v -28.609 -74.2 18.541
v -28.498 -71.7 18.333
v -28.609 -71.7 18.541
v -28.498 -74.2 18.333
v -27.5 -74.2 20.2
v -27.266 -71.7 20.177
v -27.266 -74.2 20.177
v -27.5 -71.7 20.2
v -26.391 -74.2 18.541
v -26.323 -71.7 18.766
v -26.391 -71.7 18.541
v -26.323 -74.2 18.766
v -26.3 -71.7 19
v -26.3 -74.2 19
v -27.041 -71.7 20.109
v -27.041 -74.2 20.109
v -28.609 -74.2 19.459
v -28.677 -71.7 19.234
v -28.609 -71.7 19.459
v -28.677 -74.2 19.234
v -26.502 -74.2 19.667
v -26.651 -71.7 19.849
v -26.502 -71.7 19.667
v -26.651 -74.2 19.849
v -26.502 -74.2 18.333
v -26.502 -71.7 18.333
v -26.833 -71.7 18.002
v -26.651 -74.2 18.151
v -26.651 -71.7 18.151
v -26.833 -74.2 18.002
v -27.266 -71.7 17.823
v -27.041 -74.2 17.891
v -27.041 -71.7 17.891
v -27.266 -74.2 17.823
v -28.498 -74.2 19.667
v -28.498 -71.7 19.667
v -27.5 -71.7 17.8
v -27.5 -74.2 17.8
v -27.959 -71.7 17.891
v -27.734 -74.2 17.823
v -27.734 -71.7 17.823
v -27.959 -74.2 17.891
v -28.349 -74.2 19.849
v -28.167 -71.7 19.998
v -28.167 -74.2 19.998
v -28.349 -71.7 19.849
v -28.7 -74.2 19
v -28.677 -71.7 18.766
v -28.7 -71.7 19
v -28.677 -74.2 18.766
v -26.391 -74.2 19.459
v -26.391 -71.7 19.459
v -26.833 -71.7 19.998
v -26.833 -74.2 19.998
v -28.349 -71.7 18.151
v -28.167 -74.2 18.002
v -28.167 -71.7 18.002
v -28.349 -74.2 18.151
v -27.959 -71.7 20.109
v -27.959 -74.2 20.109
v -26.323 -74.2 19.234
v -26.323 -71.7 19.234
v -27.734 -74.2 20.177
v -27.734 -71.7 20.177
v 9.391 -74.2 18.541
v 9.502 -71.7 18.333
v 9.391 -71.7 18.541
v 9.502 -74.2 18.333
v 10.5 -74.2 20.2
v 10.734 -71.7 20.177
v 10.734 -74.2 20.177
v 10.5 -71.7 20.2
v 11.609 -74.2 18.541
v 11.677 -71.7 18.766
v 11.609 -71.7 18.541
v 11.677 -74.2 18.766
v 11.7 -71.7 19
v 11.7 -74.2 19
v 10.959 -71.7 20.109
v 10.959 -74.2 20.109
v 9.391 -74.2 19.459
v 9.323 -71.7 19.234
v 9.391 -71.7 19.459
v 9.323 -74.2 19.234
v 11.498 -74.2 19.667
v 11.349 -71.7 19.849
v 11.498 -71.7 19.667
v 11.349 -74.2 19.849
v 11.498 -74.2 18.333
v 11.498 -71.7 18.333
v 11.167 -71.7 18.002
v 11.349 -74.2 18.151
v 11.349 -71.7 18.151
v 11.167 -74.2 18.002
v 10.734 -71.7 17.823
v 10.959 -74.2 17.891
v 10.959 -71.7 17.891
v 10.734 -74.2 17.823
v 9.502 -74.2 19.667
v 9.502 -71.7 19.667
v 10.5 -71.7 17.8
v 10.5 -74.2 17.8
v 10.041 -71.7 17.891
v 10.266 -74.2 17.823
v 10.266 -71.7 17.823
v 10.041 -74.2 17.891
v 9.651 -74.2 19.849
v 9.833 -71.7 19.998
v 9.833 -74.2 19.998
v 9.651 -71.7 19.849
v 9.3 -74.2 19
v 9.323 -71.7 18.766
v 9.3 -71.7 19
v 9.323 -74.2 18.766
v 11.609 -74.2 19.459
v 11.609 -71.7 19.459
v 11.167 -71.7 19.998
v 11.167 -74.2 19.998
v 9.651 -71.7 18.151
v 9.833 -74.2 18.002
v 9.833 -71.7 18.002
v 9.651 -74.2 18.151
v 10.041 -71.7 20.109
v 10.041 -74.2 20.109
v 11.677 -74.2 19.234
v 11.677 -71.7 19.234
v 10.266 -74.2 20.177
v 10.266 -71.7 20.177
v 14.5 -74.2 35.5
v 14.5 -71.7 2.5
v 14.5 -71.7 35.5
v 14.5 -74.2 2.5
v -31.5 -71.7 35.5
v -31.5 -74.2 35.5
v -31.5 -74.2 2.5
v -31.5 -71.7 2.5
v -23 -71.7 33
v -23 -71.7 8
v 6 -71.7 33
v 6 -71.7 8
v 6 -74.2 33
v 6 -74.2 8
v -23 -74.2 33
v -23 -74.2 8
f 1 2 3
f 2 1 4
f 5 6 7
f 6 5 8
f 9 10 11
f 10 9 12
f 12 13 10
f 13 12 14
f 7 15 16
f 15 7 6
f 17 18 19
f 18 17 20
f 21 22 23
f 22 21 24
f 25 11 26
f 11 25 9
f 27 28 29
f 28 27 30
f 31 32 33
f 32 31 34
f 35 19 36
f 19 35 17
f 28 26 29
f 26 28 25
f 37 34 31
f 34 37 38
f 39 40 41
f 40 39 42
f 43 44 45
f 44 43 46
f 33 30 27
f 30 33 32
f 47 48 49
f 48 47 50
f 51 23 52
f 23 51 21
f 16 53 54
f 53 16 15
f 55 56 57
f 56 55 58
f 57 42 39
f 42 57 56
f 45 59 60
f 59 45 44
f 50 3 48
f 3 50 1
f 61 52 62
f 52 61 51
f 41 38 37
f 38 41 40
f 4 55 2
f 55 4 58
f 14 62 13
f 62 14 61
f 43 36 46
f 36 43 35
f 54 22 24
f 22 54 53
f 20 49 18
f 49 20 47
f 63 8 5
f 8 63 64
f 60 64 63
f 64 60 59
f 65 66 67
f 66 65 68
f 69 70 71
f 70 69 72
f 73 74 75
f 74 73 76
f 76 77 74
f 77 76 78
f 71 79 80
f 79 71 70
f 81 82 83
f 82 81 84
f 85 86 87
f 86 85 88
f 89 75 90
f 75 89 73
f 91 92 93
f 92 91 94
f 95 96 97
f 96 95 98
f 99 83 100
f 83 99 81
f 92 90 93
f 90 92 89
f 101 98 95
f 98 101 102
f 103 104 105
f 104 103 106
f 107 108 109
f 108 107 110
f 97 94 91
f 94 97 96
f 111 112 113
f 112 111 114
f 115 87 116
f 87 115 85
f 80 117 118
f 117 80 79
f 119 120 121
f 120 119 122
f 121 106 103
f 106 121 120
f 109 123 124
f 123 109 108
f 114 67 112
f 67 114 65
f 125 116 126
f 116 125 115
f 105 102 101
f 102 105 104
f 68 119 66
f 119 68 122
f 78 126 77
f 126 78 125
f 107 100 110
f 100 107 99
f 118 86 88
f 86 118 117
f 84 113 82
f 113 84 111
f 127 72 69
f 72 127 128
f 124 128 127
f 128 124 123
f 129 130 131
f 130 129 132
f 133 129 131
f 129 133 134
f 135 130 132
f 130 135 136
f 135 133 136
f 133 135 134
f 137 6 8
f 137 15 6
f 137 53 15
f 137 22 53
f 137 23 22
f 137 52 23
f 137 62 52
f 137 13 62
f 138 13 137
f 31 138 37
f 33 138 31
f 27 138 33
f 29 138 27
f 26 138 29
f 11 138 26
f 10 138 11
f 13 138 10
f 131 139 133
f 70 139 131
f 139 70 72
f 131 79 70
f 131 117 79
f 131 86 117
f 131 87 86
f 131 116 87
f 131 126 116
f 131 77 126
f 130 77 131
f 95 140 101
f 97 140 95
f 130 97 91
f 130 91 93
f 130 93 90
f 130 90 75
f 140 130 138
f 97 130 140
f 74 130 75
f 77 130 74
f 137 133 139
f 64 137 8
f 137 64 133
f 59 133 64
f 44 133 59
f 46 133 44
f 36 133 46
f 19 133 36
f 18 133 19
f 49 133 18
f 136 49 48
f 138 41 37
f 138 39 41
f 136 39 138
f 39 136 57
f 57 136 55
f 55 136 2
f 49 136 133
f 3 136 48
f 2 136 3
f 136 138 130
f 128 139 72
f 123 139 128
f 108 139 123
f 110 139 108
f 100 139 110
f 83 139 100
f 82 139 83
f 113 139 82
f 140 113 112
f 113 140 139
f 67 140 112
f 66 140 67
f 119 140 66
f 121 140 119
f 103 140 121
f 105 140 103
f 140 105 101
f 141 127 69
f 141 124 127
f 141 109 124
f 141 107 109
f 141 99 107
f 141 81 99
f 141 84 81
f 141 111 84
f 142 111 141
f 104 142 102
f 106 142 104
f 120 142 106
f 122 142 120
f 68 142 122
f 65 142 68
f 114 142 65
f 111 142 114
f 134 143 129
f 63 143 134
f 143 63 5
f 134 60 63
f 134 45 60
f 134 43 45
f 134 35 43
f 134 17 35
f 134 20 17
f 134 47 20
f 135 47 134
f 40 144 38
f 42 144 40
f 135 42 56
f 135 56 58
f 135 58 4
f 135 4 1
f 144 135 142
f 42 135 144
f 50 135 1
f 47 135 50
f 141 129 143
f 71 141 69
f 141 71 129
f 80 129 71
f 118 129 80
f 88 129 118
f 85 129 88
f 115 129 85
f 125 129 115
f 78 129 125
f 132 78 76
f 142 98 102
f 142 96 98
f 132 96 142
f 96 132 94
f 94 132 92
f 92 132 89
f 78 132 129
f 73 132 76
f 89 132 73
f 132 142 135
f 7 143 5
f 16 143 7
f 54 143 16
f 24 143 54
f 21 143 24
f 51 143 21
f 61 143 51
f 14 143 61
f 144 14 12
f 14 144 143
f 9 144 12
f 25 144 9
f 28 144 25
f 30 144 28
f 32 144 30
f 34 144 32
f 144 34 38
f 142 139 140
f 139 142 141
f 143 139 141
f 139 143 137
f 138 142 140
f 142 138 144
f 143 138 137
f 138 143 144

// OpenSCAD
//
// ============================================================================
// SteamMachine UM790
// Project Phoenix
//
// Archivo  : oled_bracket.scad
// Versión  : 1.0
// Fecha    : 2026-08-22
// Autor    : Pep Ventura (asistido por Claude)
//
// Brida de sujeción de la OLED — pieza NUEVA, separada del panel
// inferior. PEDIDO POR EL USUARIO: fijación robusta y visible para la
// pantalla, en vez de pegamento — inspirado en
// https://www.thingiverse.com/thing:7296586 (carcasa + 2 insertos
// M2x2,5x3,2 + 2 tornillos M2x3, que sujeta el módulo por detrás).
//
// Se atornilla en los dos bosses de lower_panel.scad
// (oledInsertBosses(), coordenadas en oled_bracket_screw_positions,
// assembly_positions.scad), presionando el módulo OLED contra la cara
// interior del panel — el módulo queda atrapado entre la brida y el
// panel, sin pegamento.
//
// Hueco central amplio: no debe tapar ni la pantalla visible
// (oled_screen_width/height) ni el rebaje de los pines por encima.
//
// Sistema de coordenadas: igual que assembly_positions.scad — origen
// centrado en X/Y, Z=0 en la cara inferior exterior del cascarón.
//
// ============================================================================

include <../../../00_parametros.scad>;
include <../../reference/components/assembly_positions.scad>;

$fn = 32;

part_version = "1.0";


//=============================================================================
// PLACA — cubre el módulo OLED (27x27mm) y llega hasta los bosses,
// que ahora están a los lados de la pantalla (ver
// oled_bracket_boss_x_offset en assembly_positions.scad)
//=============================================================================

oled_bracket_edge_margin = 1.0;   // ESTIMADO — margen entre el borde del boss y el borde exterior de la brida
oled_bracket_thickness   = 2.5;   // ESTIMADO — grosor de la brida
oled_bracket_v_margin    = 3.0;   // margen vertical respecto al módulo (27mm de alto), a cada lado

oled_bracket_width  = 2*(oled_bracket_boss_x_offset + oled_bracket_boss_diameter/2 + oled_bracket_edge_margin);
oled_bracket_height = oled_module_height + 2*oled_bracket_v_margin;

// Y: se apoya directamente contra el respaldo del boss (donde termina
// el propio boss, oled_bracket_boss_length desde la cara interior del
// panel) — mismo criterio que cualquier tornillo que aprieta contra
// un tope.
oled_bracket_y = -case_depth/2 + front_panel_thickness + oled_bracket_boss_length;

module oledBracketPlate()
{

    translate([
        oled_pos[0] - oled_bracket_width/2,
        oled_bracket_y,
        oled_pos[2] - oled_bracket_height/2
    ])

        cube([oled_bracket_width, oled_bracket_thickness, oled_bracket_height]);

}


//=============================================================================
// HUECO CENTRAL — no debe tapar la pantalla ni el rebaje de los pines
//
// COMPROBADO NUMÉRICAMENTE (2026-08-22): con los bosses ahora a los
// LADOS de la pantalla (no en las esquinas inferiores), el margen de
// la ventana ya no compite por el mismo espacio — el hueco puede
// mantener el margen de alineación sin solapar los tornillos.
//=============================================================================

oled_bracket_window_margin = 1.0;  // ESTIMADO (reducido de 1,5 a 1,0 — comprobado numéricamente para dejar hueco libre a los bosses, ahora a los lados de la pantalla)

module oledBracketWindowCut()
{

    windowWidth  = oled_screen_width  + 2*oled_bracket_window_margin;
    windowHeight = oled_screen_height + oled_pin_clearance_height + 2*oled_bracket_window_margin;

    translate([
        oled_pos[0] - windowWidth/2,
        oled_bracket_y - 0.1,
        oled_pos[2] - oled_screen_height/2 - oled_bracket_window_margin
    ])

        cube([windowWidth, oled_bracket_thickness+0.2, windowHeight]);

}


//=============================================================================
// TALADROS DE PASO PARA LOS TORNILLOS M2
//=============================================================================

oled_bracket_screw_clearance = 2.4;  // holgura estándar para M2

module oledBracketScrewHoles()
{

    for (p = oled_bracket_screw_positions)

        translate([p[0], oled_bracket_y-0.1, p[1]])
            rotate([-90,0,0])
                cylinder(d = oled_bracket_screw_clearance, h = oled_bracket_thickness+0.2);

}


//=============================================================================
// PIEZA COMPLETA
//=============================================================================

module oledBracket()
{

    difference()
    {
        oledBracketPlate();
        oledBracketWindowCut();
        oledBracketScrewHoles();
    }

}


//=============================================================================
// PREVIEW
//=============================================================================

oledBracket();
